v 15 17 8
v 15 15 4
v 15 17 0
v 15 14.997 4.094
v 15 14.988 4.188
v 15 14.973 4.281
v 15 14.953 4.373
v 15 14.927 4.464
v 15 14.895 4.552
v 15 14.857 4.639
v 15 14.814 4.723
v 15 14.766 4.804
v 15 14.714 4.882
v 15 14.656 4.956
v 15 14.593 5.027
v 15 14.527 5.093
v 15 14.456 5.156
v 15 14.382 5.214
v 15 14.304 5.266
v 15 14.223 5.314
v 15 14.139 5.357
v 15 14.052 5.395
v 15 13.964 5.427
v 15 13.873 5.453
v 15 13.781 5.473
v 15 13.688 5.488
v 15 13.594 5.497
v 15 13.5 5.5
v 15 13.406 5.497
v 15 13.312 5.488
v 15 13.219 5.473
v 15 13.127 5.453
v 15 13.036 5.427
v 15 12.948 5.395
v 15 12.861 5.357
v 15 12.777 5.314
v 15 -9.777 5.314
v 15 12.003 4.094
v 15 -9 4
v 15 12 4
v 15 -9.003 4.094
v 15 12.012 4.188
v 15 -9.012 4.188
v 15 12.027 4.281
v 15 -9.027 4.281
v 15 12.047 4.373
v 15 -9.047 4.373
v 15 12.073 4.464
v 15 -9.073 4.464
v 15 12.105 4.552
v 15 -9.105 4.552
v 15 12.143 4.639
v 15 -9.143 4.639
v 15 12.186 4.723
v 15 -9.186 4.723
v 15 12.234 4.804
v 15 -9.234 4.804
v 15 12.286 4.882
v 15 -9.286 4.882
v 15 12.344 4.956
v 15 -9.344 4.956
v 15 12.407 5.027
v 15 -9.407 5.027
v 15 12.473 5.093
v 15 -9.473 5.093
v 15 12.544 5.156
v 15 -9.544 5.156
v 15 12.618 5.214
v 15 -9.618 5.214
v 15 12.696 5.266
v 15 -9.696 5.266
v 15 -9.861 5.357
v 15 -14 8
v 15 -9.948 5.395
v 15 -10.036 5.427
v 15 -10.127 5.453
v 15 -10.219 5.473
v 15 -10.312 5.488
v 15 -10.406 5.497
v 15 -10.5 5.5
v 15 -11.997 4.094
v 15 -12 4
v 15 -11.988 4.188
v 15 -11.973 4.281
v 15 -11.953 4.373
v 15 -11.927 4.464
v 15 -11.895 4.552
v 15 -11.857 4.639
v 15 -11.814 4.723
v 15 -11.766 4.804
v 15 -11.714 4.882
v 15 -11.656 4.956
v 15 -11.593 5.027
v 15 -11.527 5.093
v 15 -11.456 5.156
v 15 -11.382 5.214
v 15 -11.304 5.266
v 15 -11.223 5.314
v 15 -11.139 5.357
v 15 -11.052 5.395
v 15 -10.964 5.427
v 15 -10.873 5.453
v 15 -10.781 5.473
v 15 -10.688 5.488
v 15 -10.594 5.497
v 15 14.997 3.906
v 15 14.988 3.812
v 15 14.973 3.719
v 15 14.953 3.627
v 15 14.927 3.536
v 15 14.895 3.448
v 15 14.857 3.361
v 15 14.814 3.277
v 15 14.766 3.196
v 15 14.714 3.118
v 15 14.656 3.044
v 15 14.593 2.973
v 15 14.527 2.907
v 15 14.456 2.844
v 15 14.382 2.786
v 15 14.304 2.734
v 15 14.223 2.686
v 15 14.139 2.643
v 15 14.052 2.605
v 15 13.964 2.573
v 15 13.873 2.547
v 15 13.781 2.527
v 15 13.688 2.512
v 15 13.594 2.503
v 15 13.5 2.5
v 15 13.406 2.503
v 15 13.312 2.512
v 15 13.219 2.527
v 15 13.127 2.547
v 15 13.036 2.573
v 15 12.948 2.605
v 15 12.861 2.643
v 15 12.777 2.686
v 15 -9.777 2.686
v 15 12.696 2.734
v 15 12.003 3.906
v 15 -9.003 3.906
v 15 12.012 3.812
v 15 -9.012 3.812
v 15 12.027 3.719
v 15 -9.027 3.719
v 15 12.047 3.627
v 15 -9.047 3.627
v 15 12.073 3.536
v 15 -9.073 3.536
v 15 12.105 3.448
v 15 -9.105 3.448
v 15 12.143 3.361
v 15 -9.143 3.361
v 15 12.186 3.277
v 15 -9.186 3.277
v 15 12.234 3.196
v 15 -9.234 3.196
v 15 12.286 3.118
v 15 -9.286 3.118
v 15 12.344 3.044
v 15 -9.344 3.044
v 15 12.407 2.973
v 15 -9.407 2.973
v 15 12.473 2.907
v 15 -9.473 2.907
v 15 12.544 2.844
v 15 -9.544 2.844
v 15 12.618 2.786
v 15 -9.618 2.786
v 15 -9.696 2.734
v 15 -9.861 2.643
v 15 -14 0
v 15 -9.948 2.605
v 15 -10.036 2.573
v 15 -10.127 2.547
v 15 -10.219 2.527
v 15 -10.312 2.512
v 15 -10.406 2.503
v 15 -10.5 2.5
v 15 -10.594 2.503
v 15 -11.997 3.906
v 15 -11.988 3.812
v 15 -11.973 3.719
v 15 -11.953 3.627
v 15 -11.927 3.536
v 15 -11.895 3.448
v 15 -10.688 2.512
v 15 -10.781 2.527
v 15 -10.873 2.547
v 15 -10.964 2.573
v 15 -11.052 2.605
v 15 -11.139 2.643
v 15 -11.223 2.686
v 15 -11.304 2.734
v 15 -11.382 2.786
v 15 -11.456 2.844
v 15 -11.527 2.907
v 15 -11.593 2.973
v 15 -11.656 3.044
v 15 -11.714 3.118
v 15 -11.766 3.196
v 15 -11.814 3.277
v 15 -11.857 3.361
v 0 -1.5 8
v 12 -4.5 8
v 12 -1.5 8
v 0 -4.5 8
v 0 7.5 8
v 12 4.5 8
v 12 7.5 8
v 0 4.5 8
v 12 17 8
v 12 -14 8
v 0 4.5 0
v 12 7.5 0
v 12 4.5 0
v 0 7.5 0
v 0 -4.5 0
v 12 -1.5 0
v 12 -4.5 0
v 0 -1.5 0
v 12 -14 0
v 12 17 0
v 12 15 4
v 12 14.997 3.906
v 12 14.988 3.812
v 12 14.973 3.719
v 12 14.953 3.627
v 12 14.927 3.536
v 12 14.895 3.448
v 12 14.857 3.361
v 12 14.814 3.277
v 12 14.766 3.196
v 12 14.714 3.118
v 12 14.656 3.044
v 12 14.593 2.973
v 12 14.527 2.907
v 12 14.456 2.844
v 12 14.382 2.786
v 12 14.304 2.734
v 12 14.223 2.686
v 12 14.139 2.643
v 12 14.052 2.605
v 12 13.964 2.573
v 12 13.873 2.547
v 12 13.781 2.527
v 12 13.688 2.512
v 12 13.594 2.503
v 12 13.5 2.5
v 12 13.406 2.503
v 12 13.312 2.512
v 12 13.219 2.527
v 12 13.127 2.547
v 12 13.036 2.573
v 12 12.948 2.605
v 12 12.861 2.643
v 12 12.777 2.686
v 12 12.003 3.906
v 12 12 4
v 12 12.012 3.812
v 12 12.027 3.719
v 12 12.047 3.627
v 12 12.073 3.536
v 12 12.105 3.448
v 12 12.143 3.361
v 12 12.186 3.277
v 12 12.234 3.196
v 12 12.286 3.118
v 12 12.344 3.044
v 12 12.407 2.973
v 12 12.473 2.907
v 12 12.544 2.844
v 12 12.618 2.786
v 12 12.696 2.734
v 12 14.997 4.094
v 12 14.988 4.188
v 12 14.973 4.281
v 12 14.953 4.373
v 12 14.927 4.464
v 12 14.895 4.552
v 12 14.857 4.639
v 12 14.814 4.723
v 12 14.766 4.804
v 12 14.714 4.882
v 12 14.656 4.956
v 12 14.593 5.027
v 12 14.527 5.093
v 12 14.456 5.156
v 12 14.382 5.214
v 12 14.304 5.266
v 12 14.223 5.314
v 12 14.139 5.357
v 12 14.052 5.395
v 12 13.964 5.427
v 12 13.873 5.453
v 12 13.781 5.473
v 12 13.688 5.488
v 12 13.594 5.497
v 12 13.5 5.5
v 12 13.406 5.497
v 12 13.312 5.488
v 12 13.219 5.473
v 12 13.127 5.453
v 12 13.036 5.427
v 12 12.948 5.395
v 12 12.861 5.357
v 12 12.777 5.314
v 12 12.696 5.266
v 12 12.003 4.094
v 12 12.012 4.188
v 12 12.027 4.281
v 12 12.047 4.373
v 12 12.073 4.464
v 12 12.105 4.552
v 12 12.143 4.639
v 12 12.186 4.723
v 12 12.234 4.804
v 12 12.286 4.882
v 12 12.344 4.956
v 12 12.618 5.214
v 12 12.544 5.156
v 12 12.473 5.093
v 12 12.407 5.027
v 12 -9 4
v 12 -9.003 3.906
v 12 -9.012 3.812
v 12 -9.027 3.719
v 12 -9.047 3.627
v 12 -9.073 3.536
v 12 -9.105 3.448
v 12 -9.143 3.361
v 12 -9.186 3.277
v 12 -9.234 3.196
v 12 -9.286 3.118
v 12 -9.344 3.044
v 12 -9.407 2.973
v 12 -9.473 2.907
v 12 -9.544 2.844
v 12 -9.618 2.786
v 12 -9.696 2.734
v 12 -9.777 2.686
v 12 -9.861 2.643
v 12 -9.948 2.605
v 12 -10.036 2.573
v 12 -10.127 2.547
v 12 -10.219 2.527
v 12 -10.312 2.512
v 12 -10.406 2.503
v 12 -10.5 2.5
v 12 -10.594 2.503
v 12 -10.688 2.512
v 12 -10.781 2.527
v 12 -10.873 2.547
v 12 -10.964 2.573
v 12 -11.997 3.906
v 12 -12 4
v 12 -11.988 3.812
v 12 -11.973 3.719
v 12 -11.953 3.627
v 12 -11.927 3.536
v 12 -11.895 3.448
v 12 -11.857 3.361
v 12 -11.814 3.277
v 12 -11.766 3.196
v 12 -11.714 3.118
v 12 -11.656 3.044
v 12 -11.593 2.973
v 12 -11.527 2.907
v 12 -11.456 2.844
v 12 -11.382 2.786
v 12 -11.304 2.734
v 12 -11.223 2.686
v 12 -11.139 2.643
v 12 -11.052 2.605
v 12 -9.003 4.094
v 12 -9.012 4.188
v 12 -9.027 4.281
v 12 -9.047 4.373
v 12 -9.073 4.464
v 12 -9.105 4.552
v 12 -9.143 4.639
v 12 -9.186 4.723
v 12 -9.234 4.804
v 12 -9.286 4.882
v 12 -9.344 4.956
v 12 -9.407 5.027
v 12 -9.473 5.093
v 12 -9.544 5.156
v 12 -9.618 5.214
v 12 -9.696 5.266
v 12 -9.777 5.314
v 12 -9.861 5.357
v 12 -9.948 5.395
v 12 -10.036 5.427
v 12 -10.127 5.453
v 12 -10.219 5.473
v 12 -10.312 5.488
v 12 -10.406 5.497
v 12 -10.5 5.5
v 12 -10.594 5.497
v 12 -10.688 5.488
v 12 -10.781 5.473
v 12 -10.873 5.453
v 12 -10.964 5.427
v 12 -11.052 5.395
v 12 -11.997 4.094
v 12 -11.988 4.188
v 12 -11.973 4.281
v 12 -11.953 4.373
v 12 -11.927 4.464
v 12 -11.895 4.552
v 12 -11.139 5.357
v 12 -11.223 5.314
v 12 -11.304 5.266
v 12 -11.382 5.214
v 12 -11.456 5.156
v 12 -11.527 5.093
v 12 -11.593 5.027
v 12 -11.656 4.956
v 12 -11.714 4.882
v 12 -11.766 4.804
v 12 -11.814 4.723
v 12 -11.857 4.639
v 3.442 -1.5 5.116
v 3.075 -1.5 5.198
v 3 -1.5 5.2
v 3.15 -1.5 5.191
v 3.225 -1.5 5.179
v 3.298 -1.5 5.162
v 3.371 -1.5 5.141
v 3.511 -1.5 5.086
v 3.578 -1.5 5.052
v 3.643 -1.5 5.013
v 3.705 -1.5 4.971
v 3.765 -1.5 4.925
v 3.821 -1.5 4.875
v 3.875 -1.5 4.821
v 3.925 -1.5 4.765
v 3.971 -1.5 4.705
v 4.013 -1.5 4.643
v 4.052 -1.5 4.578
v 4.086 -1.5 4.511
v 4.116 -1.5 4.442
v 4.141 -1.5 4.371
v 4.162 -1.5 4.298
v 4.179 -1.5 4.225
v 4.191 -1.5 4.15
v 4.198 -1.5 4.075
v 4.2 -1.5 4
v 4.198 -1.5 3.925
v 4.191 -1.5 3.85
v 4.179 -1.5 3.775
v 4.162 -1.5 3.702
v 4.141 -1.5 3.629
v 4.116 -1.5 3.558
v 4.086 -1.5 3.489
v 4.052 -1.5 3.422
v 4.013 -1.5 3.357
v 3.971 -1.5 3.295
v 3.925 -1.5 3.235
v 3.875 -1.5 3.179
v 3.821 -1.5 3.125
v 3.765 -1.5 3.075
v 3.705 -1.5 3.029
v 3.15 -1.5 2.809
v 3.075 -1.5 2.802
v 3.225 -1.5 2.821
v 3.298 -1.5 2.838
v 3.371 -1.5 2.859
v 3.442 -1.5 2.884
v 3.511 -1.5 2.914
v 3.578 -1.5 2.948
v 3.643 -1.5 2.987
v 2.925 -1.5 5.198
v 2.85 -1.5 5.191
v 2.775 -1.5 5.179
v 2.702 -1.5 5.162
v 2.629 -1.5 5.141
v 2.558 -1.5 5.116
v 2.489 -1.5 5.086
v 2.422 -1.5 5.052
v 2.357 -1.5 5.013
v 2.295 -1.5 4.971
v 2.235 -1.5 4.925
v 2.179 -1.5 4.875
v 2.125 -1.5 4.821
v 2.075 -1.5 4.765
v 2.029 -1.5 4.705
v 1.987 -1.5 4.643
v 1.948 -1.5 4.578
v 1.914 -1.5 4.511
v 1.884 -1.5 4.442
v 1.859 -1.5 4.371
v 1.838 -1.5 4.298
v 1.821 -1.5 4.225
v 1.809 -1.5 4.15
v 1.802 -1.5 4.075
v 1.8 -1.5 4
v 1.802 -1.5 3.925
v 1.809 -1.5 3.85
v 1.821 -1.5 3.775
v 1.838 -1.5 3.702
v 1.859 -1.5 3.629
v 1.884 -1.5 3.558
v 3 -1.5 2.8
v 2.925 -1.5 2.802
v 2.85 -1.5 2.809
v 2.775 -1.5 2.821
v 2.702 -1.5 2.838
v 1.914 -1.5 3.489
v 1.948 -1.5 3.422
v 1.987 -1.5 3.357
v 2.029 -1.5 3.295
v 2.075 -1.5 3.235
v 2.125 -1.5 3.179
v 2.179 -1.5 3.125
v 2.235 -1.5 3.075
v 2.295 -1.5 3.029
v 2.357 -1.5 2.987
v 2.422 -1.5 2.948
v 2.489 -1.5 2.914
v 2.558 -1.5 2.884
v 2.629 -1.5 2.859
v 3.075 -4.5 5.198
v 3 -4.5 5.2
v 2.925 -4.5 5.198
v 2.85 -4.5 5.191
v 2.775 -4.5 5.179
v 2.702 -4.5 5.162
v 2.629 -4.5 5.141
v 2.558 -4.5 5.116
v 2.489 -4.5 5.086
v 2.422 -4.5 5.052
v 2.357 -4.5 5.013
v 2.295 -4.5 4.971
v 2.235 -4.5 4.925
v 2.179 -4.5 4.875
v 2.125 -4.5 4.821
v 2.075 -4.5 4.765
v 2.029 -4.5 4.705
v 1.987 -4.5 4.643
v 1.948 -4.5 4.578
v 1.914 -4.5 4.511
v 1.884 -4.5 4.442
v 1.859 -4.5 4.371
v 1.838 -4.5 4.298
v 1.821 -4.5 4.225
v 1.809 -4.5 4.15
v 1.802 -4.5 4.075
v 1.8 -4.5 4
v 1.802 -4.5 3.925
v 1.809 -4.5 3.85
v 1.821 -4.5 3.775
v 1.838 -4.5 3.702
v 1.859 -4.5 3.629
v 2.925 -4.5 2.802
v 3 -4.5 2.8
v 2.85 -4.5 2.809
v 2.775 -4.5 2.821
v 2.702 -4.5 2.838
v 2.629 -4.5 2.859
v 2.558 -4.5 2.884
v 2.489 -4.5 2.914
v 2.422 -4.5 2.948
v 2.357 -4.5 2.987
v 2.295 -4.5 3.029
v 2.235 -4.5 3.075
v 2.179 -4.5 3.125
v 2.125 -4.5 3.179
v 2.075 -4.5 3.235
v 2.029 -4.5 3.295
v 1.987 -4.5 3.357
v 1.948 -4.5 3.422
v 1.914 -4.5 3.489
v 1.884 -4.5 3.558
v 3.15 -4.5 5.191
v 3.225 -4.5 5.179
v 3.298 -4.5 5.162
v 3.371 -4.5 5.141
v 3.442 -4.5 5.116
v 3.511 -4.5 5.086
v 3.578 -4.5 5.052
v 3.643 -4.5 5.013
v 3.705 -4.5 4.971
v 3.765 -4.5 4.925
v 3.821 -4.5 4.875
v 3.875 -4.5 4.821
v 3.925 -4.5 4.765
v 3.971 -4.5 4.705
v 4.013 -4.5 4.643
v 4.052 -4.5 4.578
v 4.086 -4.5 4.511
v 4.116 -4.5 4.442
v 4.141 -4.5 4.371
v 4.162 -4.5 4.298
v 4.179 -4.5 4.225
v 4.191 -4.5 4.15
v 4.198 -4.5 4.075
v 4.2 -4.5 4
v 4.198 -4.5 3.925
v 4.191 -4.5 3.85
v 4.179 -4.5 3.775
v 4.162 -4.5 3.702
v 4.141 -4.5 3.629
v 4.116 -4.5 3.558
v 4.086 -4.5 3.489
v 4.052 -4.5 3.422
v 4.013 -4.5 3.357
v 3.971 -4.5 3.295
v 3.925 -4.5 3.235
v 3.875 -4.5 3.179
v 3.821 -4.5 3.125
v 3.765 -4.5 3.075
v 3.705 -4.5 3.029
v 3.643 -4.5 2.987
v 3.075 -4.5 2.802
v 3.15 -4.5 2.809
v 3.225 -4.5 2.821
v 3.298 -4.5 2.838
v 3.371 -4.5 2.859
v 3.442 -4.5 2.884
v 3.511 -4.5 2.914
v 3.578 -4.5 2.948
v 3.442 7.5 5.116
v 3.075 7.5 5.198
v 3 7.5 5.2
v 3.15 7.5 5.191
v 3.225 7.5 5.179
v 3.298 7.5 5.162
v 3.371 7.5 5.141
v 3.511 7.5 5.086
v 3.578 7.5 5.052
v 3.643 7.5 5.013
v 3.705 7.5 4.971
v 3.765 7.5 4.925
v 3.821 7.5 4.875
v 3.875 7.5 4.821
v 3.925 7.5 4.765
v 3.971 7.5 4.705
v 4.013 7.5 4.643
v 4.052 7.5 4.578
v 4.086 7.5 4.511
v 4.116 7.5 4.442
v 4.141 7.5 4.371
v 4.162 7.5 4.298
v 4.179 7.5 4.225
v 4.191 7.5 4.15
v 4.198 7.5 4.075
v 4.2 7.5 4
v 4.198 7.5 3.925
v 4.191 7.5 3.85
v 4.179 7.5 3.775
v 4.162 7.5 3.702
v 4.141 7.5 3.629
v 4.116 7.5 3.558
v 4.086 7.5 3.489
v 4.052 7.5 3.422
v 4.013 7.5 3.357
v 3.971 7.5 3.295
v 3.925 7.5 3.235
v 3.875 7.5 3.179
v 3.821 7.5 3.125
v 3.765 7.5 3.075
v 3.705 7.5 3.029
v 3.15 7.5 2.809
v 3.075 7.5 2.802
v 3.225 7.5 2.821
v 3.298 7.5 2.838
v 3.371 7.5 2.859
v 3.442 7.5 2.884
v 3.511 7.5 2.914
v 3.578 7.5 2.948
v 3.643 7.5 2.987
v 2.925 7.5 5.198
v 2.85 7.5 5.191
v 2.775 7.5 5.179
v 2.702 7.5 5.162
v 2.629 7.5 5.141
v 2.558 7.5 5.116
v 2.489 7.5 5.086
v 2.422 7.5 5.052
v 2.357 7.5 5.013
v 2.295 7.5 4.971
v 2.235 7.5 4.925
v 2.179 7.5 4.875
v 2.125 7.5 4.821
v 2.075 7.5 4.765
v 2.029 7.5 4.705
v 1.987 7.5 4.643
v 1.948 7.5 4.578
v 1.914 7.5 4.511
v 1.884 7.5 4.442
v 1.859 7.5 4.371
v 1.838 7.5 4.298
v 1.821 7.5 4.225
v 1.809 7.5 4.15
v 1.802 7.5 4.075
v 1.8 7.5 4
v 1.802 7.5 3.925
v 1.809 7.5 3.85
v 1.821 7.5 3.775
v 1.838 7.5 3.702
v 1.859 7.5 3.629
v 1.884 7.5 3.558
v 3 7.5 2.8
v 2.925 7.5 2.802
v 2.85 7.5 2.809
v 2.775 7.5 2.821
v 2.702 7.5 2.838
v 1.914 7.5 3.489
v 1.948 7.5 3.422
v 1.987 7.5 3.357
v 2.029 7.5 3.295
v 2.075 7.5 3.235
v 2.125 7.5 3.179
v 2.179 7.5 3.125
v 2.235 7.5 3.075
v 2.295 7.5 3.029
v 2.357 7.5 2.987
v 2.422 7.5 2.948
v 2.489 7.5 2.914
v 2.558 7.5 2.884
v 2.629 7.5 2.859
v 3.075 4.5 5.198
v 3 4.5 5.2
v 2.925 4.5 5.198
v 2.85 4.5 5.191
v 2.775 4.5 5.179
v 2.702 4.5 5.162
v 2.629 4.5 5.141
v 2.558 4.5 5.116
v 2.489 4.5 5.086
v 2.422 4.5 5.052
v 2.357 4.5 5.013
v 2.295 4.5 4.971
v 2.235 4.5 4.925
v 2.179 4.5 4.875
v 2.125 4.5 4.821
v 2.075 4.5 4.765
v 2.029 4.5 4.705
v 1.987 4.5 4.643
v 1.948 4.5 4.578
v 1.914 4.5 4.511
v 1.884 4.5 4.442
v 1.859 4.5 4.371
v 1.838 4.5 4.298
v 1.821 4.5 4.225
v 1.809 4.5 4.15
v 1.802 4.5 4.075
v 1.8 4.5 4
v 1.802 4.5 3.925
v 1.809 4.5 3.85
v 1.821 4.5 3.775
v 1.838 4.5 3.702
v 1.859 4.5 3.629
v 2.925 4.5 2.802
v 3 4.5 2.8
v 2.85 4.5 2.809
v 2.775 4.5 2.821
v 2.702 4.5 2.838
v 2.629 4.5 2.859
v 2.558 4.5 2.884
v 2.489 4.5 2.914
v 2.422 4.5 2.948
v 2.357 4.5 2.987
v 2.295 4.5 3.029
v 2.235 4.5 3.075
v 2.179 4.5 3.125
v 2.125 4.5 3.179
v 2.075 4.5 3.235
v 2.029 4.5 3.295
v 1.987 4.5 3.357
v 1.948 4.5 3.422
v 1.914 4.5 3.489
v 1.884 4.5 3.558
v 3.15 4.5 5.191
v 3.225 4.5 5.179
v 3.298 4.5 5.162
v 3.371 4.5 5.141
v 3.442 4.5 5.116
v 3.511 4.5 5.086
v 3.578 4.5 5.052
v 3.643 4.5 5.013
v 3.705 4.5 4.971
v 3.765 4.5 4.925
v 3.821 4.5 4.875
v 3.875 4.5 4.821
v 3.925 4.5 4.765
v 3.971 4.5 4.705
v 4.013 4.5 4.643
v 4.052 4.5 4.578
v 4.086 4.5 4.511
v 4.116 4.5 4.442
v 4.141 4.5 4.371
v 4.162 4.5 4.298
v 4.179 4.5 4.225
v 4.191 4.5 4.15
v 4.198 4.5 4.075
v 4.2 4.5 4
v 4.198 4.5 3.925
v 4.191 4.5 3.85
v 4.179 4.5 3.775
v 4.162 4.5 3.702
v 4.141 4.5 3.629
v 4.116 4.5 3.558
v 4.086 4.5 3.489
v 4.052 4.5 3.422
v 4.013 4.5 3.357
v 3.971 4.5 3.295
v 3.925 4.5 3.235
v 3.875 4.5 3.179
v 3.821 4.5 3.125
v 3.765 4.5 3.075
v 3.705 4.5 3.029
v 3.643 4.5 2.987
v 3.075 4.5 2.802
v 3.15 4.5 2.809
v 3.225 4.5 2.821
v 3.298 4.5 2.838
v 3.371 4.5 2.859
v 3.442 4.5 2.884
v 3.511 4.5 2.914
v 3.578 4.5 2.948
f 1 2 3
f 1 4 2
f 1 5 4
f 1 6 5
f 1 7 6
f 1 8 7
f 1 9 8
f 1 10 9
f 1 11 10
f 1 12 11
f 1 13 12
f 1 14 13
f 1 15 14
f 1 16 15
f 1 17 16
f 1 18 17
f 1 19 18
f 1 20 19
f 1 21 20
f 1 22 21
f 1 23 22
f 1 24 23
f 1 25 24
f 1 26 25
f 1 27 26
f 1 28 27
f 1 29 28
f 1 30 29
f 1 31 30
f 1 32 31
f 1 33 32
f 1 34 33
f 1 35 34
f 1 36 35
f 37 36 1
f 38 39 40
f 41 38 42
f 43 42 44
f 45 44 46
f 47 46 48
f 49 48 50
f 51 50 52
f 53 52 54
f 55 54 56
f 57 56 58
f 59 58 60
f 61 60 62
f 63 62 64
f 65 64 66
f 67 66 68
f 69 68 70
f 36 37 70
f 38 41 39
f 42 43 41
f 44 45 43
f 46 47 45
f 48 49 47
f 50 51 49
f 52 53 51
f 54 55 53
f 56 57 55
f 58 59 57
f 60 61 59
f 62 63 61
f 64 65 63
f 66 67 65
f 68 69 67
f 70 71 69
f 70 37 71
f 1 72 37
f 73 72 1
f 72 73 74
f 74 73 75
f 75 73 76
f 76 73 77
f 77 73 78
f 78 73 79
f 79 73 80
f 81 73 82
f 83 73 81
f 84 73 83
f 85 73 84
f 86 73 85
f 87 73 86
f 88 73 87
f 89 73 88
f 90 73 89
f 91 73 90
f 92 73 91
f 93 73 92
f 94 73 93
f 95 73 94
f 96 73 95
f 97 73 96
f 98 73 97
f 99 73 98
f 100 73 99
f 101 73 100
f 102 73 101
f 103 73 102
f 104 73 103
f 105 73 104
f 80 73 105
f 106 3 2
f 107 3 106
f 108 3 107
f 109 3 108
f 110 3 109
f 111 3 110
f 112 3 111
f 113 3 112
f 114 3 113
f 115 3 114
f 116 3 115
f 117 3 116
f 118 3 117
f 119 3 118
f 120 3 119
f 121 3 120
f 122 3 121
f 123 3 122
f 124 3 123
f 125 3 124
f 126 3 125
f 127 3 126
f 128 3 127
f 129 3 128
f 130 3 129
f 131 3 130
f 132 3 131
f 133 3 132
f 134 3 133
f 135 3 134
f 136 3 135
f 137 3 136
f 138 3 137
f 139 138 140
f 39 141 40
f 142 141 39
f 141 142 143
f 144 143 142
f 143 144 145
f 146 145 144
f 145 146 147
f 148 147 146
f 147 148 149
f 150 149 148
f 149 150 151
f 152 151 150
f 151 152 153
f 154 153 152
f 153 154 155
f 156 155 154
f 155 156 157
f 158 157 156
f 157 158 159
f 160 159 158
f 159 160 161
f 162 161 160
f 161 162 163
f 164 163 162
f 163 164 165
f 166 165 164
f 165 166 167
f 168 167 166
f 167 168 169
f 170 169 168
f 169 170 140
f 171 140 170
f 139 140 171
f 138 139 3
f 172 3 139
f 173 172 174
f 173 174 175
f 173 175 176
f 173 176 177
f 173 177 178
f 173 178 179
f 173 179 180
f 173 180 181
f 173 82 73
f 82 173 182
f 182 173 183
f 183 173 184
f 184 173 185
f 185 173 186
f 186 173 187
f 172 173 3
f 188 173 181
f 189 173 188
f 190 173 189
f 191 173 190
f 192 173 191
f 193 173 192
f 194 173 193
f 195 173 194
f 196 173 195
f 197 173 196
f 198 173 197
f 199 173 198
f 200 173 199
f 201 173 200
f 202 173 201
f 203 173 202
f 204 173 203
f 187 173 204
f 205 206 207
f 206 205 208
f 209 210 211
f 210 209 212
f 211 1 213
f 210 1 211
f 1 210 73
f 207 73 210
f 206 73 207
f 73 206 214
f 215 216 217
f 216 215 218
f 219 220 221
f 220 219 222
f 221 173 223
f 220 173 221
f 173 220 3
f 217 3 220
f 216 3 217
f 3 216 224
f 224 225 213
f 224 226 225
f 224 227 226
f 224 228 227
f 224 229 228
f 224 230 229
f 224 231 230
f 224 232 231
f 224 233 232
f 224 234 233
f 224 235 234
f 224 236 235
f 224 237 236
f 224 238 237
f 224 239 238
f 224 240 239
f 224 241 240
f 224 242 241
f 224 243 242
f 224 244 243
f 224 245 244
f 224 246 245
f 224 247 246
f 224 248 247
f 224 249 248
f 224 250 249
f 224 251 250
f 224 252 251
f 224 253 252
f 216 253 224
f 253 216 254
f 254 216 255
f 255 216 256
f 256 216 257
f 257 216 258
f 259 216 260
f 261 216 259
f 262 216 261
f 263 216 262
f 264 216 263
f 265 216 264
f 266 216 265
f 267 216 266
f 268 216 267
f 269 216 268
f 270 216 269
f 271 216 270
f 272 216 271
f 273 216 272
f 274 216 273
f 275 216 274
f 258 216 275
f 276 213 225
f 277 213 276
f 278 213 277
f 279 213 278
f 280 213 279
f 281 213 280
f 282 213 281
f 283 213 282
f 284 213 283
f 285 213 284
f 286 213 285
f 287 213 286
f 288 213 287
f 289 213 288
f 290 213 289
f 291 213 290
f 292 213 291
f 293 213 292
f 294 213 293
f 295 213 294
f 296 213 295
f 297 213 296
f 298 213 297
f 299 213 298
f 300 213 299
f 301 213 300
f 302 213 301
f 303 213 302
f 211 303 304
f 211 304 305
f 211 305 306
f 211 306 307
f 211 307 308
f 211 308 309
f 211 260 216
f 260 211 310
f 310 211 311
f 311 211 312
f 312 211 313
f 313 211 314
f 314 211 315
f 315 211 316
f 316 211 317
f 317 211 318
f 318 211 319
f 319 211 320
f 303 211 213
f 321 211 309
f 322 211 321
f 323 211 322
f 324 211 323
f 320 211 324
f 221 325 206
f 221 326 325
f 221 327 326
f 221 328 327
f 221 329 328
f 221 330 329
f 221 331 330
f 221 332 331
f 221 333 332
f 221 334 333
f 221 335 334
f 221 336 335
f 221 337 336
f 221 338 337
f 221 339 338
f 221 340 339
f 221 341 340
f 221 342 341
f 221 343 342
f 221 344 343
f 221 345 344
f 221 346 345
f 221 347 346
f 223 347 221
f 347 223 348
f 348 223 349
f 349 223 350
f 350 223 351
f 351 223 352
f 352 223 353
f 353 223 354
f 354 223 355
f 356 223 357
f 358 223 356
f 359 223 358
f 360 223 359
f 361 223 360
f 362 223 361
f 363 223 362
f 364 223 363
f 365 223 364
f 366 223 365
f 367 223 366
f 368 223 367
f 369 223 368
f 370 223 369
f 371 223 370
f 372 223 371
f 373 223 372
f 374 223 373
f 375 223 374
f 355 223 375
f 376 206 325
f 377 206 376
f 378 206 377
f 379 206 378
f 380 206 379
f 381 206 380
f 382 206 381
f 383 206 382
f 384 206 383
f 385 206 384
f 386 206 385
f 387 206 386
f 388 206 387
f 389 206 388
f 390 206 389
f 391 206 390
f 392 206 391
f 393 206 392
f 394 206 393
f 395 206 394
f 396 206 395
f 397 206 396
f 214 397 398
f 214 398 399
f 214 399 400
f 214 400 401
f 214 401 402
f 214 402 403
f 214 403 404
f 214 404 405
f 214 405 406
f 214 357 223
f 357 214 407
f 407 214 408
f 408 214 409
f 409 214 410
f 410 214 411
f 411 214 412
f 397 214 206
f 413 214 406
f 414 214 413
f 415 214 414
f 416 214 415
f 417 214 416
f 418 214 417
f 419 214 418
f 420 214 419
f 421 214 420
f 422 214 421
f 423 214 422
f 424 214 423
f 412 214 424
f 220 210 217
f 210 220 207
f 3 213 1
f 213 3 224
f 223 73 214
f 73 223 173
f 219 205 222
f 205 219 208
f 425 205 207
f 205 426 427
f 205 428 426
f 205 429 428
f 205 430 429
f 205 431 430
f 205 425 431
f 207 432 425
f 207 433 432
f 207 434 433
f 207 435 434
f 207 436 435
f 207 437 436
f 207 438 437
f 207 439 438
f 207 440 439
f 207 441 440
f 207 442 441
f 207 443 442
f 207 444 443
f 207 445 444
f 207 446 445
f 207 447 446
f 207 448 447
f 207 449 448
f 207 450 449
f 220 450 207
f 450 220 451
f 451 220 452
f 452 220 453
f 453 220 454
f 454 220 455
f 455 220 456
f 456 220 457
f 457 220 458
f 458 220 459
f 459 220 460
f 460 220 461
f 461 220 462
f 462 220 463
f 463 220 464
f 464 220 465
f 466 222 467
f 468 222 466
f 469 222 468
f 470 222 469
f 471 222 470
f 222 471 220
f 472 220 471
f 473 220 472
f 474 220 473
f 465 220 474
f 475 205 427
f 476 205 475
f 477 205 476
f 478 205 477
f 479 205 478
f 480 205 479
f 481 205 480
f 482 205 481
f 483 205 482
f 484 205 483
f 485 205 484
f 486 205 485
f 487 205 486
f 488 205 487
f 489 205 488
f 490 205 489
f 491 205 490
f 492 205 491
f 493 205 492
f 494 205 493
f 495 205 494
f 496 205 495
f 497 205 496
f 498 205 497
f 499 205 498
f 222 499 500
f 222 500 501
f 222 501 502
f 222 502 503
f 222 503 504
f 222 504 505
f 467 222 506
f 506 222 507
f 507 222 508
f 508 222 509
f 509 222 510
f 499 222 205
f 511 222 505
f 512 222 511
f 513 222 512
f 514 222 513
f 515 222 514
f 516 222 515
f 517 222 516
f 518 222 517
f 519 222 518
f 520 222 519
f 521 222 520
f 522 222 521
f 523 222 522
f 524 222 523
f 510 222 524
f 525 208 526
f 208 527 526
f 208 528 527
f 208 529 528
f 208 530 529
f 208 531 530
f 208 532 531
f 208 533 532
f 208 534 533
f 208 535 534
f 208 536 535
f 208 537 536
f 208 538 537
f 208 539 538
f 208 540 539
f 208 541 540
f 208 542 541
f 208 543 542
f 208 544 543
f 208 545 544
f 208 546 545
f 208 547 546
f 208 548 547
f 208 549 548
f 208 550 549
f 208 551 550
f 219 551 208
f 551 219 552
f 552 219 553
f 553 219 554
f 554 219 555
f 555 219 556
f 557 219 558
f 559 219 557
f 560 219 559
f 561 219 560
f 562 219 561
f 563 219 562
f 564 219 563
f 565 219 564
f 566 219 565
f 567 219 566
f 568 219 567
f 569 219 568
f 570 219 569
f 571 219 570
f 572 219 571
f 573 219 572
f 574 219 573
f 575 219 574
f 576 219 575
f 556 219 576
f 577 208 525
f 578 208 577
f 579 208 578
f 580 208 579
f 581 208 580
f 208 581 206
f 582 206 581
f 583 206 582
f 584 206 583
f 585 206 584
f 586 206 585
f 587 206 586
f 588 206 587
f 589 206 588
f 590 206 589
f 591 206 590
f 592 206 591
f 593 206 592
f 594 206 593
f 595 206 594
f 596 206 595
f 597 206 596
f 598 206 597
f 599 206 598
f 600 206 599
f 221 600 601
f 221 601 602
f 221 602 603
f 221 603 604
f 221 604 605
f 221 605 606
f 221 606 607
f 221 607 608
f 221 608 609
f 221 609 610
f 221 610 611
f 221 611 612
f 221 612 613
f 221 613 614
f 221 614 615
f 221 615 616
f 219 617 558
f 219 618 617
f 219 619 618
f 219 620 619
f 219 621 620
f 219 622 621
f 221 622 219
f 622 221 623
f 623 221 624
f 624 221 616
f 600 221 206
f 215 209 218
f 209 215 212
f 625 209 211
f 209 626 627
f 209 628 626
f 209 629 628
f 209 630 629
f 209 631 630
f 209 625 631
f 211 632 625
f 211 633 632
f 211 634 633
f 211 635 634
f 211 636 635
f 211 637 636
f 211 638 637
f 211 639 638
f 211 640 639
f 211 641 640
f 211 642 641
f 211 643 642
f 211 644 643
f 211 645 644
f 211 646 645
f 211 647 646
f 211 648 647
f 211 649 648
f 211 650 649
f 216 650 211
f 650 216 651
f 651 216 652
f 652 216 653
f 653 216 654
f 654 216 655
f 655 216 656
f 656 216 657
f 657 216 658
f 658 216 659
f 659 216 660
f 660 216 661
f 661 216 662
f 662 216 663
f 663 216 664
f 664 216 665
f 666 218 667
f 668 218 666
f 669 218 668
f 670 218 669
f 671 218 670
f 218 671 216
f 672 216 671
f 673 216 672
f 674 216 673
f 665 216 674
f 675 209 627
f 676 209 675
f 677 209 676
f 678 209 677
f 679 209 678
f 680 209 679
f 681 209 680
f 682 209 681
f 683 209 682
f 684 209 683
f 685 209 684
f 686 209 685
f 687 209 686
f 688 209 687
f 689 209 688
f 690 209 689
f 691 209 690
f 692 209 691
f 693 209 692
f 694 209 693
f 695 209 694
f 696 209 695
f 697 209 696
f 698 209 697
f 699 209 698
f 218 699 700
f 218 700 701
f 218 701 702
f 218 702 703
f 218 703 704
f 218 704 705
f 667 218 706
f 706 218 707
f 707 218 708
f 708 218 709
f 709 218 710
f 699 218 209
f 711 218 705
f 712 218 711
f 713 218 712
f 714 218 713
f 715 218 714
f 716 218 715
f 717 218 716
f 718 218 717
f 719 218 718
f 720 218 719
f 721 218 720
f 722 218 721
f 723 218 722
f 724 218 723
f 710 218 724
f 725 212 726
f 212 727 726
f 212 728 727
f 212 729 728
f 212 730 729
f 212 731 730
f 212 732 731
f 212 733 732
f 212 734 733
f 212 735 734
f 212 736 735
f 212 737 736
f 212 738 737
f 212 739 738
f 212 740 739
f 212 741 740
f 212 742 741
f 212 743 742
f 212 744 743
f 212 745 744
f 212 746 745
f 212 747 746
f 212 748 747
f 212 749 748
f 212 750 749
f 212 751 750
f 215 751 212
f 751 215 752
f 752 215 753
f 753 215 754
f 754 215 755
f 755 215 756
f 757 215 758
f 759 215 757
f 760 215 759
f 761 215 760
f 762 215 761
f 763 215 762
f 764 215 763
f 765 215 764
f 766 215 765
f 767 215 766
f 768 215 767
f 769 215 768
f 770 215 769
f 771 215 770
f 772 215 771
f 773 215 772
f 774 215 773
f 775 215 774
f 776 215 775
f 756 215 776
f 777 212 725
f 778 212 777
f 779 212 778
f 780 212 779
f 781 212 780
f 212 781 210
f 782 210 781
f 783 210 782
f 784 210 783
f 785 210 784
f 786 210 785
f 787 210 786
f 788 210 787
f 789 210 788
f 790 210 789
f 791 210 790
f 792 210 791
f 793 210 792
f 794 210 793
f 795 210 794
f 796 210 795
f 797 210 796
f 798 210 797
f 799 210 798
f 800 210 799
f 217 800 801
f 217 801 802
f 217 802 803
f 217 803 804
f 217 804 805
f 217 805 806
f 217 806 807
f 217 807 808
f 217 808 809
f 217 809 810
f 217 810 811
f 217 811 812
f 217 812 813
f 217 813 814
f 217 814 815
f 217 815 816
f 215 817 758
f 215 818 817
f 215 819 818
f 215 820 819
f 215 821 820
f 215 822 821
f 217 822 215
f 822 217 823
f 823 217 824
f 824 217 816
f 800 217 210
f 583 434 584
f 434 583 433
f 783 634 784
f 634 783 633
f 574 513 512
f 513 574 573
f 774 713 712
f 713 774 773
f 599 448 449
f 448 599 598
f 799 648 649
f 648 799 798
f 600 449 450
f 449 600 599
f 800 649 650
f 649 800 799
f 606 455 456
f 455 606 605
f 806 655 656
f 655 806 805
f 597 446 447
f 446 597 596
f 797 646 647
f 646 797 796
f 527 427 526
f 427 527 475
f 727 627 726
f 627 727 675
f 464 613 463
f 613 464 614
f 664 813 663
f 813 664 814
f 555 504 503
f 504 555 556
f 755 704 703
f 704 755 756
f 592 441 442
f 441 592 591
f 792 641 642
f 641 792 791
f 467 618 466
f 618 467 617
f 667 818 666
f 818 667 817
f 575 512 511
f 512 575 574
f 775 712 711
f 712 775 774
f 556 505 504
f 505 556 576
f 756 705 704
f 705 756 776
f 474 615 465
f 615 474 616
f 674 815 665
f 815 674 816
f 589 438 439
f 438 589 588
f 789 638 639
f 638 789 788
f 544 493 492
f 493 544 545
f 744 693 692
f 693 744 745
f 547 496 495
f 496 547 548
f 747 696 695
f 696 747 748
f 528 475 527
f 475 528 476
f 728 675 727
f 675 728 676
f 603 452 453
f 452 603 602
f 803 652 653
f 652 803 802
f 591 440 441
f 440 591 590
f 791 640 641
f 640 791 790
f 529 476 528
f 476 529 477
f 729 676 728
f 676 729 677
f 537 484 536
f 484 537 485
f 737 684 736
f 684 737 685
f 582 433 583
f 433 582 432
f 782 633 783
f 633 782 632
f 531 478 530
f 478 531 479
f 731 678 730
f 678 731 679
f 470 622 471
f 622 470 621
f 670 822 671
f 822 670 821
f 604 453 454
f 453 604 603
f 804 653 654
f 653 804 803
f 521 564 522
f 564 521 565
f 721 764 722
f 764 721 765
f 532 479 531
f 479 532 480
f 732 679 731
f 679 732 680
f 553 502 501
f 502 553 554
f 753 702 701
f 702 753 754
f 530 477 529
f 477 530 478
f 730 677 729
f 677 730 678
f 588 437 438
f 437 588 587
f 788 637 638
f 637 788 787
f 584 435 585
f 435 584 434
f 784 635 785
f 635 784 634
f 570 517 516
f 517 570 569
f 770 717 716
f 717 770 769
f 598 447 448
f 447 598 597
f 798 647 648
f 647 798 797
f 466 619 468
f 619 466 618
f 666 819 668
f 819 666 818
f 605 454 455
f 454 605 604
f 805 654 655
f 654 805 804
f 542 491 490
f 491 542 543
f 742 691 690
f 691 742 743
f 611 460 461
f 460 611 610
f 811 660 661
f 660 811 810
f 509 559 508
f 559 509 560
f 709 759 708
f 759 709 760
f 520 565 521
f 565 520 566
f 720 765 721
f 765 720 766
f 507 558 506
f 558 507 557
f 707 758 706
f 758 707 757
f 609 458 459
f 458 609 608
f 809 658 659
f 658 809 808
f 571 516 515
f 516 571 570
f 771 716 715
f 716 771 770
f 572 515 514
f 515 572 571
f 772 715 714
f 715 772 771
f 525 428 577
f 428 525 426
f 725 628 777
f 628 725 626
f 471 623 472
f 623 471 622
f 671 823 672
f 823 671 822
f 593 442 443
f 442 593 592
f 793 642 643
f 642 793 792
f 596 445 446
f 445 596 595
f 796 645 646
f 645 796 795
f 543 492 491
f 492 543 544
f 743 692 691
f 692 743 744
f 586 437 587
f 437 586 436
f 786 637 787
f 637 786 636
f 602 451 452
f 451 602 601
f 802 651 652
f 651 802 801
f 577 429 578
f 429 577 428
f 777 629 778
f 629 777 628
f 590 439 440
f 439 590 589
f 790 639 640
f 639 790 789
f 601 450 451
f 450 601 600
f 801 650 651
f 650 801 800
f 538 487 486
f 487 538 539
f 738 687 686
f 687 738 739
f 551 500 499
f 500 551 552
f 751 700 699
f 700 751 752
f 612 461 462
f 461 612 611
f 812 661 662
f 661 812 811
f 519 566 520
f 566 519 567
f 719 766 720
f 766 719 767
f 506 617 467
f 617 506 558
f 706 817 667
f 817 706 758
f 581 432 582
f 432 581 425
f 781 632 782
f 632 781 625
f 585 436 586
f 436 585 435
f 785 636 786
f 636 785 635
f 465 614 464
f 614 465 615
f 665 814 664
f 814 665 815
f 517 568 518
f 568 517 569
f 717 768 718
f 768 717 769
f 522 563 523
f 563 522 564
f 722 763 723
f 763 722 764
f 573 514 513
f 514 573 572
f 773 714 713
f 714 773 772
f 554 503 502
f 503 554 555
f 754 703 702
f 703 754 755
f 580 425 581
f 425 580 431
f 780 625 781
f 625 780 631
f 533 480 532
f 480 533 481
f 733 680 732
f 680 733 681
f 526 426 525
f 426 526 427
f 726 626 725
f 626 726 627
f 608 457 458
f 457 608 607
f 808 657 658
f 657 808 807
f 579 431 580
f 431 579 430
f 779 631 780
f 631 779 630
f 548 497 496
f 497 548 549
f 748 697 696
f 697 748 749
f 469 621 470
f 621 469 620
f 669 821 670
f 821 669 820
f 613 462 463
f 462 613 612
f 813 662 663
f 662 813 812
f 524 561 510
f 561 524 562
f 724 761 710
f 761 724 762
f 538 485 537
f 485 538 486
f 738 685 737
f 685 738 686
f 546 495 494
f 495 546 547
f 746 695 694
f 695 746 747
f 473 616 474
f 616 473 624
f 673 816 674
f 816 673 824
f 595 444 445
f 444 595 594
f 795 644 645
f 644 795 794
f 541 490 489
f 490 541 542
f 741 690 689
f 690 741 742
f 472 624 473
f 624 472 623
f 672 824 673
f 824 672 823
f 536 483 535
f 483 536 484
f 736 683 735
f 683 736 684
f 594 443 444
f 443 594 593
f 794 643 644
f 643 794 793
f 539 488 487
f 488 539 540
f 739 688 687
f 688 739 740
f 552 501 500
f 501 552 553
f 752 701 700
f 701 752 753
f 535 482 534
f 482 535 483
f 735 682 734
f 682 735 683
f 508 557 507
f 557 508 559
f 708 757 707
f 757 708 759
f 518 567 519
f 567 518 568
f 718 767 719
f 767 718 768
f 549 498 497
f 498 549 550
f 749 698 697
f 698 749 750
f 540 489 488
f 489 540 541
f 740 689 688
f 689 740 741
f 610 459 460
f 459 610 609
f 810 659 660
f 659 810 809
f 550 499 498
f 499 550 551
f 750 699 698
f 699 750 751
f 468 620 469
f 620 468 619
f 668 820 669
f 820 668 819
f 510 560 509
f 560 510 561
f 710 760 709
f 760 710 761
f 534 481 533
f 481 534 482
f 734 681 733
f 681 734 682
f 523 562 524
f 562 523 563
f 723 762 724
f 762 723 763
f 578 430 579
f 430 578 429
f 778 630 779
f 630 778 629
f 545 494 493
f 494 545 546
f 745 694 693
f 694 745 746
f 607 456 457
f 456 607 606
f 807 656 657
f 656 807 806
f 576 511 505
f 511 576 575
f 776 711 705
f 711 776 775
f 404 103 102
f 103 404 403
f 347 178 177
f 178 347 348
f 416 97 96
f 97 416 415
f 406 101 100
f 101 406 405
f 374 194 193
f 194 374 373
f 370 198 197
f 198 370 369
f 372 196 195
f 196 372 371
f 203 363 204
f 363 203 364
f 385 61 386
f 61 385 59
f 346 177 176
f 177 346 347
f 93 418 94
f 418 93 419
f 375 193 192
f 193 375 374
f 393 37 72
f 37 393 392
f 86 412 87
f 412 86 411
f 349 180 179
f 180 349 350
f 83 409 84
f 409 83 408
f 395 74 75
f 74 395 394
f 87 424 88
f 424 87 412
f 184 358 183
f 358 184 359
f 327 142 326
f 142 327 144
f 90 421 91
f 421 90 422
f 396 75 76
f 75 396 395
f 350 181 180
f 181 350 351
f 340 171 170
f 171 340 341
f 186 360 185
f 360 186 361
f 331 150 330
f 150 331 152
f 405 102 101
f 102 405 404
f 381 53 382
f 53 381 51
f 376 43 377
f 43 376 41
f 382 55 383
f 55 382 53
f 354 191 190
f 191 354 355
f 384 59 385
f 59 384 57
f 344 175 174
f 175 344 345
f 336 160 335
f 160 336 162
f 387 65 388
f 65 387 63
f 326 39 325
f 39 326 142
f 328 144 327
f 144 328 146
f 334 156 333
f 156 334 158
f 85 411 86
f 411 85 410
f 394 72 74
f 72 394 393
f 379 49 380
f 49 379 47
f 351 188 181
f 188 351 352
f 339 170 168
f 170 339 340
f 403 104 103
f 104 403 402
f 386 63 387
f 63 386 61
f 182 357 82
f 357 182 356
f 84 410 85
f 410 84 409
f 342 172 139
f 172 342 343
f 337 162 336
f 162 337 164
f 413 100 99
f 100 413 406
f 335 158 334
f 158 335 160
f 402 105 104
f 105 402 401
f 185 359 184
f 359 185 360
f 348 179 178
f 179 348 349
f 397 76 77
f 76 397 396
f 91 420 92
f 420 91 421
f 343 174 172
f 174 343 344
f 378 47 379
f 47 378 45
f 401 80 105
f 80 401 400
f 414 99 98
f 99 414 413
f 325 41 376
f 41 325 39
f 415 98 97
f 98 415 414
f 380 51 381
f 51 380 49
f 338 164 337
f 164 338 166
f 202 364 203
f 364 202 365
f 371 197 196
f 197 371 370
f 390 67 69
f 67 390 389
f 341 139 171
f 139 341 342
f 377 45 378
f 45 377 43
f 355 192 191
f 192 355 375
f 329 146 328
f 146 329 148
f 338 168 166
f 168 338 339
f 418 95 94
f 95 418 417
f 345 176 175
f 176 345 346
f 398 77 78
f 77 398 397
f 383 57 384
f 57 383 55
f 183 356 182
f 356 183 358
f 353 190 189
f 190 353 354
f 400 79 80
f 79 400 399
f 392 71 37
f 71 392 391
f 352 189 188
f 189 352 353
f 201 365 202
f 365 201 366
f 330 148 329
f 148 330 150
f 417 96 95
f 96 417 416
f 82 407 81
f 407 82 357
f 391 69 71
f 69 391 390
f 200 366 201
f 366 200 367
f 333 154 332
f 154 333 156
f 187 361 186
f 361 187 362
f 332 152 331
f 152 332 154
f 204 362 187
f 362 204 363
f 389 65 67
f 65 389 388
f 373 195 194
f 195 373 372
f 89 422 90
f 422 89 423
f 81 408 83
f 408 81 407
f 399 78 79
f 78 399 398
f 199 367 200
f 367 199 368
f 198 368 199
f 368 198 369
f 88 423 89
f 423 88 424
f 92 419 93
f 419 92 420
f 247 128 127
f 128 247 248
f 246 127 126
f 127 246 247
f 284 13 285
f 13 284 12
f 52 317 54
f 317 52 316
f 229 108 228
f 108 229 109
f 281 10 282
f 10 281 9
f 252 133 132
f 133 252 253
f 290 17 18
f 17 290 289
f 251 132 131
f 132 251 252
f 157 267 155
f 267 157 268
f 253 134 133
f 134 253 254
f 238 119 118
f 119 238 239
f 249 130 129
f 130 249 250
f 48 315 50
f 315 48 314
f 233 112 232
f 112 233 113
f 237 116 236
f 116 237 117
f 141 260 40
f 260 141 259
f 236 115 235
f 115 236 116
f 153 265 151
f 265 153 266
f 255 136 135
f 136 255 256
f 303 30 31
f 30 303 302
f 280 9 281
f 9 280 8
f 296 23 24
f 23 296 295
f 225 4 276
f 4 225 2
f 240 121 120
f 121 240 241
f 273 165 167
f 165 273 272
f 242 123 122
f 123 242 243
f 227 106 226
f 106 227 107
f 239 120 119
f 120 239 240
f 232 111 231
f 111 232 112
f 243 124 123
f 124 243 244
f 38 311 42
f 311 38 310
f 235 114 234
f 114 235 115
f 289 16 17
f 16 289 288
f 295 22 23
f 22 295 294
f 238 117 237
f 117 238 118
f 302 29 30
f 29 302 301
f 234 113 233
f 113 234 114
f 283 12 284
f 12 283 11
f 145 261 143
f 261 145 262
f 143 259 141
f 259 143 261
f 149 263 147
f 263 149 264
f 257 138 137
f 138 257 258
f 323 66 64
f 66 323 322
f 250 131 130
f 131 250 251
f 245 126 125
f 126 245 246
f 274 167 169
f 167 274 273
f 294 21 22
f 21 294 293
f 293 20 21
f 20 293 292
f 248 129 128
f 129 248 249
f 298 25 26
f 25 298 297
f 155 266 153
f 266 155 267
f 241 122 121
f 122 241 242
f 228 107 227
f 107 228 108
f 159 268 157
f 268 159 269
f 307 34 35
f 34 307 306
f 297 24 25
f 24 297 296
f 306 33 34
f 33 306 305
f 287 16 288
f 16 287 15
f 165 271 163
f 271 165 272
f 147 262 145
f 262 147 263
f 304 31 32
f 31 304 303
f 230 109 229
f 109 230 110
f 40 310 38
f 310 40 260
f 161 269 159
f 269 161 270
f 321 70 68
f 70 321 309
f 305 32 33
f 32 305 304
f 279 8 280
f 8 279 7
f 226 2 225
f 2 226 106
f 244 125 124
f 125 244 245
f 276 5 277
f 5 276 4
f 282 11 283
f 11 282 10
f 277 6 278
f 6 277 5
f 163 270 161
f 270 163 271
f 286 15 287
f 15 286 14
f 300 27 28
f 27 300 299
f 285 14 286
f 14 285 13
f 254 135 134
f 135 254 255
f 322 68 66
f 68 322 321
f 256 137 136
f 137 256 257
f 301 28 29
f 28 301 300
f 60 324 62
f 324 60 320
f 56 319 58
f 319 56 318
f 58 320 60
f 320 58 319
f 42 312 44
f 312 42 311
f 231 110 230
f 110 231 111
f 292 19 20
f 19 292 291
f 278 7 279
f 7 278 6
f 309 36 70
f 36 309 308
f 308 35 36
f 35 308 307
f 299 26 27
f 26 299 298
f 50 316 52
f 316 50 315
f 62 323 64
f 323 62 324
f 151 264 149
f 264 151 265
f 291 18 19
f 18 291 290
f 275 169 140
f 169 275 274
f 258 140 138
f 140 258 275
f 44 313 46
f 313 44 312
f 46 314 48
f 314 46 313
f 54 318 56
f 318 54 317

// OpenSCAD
difference(){
	union(){

        translate([12,-14,0]){
            cube([3,31,8], center=false);
        }         

        translate([0,-4.5,0]){
            cube([15,3,8], center=false);
        }         
        translate([0,4.5,0]){
            cube([15,3,8], center=false);
        }         

	}
	union() {
        translate([3,8,4]){
            rotate([90,0,0]){
                cylinder(h=117, r=1.2, $fn=100, center=false);
            }
        }         
        translate([0,1.5-12,4]){
            rotate([0,90,0]){
                cylinder(h=117, r=1.5, $fn=100, center=false);
            }
        }         
        translate([0,1.5+12,4]){
            rotate([0,90,0]){
                cylinder(h=117, r=1.5, $fn=100, center=false);
            }
        }         

        
	}
}
